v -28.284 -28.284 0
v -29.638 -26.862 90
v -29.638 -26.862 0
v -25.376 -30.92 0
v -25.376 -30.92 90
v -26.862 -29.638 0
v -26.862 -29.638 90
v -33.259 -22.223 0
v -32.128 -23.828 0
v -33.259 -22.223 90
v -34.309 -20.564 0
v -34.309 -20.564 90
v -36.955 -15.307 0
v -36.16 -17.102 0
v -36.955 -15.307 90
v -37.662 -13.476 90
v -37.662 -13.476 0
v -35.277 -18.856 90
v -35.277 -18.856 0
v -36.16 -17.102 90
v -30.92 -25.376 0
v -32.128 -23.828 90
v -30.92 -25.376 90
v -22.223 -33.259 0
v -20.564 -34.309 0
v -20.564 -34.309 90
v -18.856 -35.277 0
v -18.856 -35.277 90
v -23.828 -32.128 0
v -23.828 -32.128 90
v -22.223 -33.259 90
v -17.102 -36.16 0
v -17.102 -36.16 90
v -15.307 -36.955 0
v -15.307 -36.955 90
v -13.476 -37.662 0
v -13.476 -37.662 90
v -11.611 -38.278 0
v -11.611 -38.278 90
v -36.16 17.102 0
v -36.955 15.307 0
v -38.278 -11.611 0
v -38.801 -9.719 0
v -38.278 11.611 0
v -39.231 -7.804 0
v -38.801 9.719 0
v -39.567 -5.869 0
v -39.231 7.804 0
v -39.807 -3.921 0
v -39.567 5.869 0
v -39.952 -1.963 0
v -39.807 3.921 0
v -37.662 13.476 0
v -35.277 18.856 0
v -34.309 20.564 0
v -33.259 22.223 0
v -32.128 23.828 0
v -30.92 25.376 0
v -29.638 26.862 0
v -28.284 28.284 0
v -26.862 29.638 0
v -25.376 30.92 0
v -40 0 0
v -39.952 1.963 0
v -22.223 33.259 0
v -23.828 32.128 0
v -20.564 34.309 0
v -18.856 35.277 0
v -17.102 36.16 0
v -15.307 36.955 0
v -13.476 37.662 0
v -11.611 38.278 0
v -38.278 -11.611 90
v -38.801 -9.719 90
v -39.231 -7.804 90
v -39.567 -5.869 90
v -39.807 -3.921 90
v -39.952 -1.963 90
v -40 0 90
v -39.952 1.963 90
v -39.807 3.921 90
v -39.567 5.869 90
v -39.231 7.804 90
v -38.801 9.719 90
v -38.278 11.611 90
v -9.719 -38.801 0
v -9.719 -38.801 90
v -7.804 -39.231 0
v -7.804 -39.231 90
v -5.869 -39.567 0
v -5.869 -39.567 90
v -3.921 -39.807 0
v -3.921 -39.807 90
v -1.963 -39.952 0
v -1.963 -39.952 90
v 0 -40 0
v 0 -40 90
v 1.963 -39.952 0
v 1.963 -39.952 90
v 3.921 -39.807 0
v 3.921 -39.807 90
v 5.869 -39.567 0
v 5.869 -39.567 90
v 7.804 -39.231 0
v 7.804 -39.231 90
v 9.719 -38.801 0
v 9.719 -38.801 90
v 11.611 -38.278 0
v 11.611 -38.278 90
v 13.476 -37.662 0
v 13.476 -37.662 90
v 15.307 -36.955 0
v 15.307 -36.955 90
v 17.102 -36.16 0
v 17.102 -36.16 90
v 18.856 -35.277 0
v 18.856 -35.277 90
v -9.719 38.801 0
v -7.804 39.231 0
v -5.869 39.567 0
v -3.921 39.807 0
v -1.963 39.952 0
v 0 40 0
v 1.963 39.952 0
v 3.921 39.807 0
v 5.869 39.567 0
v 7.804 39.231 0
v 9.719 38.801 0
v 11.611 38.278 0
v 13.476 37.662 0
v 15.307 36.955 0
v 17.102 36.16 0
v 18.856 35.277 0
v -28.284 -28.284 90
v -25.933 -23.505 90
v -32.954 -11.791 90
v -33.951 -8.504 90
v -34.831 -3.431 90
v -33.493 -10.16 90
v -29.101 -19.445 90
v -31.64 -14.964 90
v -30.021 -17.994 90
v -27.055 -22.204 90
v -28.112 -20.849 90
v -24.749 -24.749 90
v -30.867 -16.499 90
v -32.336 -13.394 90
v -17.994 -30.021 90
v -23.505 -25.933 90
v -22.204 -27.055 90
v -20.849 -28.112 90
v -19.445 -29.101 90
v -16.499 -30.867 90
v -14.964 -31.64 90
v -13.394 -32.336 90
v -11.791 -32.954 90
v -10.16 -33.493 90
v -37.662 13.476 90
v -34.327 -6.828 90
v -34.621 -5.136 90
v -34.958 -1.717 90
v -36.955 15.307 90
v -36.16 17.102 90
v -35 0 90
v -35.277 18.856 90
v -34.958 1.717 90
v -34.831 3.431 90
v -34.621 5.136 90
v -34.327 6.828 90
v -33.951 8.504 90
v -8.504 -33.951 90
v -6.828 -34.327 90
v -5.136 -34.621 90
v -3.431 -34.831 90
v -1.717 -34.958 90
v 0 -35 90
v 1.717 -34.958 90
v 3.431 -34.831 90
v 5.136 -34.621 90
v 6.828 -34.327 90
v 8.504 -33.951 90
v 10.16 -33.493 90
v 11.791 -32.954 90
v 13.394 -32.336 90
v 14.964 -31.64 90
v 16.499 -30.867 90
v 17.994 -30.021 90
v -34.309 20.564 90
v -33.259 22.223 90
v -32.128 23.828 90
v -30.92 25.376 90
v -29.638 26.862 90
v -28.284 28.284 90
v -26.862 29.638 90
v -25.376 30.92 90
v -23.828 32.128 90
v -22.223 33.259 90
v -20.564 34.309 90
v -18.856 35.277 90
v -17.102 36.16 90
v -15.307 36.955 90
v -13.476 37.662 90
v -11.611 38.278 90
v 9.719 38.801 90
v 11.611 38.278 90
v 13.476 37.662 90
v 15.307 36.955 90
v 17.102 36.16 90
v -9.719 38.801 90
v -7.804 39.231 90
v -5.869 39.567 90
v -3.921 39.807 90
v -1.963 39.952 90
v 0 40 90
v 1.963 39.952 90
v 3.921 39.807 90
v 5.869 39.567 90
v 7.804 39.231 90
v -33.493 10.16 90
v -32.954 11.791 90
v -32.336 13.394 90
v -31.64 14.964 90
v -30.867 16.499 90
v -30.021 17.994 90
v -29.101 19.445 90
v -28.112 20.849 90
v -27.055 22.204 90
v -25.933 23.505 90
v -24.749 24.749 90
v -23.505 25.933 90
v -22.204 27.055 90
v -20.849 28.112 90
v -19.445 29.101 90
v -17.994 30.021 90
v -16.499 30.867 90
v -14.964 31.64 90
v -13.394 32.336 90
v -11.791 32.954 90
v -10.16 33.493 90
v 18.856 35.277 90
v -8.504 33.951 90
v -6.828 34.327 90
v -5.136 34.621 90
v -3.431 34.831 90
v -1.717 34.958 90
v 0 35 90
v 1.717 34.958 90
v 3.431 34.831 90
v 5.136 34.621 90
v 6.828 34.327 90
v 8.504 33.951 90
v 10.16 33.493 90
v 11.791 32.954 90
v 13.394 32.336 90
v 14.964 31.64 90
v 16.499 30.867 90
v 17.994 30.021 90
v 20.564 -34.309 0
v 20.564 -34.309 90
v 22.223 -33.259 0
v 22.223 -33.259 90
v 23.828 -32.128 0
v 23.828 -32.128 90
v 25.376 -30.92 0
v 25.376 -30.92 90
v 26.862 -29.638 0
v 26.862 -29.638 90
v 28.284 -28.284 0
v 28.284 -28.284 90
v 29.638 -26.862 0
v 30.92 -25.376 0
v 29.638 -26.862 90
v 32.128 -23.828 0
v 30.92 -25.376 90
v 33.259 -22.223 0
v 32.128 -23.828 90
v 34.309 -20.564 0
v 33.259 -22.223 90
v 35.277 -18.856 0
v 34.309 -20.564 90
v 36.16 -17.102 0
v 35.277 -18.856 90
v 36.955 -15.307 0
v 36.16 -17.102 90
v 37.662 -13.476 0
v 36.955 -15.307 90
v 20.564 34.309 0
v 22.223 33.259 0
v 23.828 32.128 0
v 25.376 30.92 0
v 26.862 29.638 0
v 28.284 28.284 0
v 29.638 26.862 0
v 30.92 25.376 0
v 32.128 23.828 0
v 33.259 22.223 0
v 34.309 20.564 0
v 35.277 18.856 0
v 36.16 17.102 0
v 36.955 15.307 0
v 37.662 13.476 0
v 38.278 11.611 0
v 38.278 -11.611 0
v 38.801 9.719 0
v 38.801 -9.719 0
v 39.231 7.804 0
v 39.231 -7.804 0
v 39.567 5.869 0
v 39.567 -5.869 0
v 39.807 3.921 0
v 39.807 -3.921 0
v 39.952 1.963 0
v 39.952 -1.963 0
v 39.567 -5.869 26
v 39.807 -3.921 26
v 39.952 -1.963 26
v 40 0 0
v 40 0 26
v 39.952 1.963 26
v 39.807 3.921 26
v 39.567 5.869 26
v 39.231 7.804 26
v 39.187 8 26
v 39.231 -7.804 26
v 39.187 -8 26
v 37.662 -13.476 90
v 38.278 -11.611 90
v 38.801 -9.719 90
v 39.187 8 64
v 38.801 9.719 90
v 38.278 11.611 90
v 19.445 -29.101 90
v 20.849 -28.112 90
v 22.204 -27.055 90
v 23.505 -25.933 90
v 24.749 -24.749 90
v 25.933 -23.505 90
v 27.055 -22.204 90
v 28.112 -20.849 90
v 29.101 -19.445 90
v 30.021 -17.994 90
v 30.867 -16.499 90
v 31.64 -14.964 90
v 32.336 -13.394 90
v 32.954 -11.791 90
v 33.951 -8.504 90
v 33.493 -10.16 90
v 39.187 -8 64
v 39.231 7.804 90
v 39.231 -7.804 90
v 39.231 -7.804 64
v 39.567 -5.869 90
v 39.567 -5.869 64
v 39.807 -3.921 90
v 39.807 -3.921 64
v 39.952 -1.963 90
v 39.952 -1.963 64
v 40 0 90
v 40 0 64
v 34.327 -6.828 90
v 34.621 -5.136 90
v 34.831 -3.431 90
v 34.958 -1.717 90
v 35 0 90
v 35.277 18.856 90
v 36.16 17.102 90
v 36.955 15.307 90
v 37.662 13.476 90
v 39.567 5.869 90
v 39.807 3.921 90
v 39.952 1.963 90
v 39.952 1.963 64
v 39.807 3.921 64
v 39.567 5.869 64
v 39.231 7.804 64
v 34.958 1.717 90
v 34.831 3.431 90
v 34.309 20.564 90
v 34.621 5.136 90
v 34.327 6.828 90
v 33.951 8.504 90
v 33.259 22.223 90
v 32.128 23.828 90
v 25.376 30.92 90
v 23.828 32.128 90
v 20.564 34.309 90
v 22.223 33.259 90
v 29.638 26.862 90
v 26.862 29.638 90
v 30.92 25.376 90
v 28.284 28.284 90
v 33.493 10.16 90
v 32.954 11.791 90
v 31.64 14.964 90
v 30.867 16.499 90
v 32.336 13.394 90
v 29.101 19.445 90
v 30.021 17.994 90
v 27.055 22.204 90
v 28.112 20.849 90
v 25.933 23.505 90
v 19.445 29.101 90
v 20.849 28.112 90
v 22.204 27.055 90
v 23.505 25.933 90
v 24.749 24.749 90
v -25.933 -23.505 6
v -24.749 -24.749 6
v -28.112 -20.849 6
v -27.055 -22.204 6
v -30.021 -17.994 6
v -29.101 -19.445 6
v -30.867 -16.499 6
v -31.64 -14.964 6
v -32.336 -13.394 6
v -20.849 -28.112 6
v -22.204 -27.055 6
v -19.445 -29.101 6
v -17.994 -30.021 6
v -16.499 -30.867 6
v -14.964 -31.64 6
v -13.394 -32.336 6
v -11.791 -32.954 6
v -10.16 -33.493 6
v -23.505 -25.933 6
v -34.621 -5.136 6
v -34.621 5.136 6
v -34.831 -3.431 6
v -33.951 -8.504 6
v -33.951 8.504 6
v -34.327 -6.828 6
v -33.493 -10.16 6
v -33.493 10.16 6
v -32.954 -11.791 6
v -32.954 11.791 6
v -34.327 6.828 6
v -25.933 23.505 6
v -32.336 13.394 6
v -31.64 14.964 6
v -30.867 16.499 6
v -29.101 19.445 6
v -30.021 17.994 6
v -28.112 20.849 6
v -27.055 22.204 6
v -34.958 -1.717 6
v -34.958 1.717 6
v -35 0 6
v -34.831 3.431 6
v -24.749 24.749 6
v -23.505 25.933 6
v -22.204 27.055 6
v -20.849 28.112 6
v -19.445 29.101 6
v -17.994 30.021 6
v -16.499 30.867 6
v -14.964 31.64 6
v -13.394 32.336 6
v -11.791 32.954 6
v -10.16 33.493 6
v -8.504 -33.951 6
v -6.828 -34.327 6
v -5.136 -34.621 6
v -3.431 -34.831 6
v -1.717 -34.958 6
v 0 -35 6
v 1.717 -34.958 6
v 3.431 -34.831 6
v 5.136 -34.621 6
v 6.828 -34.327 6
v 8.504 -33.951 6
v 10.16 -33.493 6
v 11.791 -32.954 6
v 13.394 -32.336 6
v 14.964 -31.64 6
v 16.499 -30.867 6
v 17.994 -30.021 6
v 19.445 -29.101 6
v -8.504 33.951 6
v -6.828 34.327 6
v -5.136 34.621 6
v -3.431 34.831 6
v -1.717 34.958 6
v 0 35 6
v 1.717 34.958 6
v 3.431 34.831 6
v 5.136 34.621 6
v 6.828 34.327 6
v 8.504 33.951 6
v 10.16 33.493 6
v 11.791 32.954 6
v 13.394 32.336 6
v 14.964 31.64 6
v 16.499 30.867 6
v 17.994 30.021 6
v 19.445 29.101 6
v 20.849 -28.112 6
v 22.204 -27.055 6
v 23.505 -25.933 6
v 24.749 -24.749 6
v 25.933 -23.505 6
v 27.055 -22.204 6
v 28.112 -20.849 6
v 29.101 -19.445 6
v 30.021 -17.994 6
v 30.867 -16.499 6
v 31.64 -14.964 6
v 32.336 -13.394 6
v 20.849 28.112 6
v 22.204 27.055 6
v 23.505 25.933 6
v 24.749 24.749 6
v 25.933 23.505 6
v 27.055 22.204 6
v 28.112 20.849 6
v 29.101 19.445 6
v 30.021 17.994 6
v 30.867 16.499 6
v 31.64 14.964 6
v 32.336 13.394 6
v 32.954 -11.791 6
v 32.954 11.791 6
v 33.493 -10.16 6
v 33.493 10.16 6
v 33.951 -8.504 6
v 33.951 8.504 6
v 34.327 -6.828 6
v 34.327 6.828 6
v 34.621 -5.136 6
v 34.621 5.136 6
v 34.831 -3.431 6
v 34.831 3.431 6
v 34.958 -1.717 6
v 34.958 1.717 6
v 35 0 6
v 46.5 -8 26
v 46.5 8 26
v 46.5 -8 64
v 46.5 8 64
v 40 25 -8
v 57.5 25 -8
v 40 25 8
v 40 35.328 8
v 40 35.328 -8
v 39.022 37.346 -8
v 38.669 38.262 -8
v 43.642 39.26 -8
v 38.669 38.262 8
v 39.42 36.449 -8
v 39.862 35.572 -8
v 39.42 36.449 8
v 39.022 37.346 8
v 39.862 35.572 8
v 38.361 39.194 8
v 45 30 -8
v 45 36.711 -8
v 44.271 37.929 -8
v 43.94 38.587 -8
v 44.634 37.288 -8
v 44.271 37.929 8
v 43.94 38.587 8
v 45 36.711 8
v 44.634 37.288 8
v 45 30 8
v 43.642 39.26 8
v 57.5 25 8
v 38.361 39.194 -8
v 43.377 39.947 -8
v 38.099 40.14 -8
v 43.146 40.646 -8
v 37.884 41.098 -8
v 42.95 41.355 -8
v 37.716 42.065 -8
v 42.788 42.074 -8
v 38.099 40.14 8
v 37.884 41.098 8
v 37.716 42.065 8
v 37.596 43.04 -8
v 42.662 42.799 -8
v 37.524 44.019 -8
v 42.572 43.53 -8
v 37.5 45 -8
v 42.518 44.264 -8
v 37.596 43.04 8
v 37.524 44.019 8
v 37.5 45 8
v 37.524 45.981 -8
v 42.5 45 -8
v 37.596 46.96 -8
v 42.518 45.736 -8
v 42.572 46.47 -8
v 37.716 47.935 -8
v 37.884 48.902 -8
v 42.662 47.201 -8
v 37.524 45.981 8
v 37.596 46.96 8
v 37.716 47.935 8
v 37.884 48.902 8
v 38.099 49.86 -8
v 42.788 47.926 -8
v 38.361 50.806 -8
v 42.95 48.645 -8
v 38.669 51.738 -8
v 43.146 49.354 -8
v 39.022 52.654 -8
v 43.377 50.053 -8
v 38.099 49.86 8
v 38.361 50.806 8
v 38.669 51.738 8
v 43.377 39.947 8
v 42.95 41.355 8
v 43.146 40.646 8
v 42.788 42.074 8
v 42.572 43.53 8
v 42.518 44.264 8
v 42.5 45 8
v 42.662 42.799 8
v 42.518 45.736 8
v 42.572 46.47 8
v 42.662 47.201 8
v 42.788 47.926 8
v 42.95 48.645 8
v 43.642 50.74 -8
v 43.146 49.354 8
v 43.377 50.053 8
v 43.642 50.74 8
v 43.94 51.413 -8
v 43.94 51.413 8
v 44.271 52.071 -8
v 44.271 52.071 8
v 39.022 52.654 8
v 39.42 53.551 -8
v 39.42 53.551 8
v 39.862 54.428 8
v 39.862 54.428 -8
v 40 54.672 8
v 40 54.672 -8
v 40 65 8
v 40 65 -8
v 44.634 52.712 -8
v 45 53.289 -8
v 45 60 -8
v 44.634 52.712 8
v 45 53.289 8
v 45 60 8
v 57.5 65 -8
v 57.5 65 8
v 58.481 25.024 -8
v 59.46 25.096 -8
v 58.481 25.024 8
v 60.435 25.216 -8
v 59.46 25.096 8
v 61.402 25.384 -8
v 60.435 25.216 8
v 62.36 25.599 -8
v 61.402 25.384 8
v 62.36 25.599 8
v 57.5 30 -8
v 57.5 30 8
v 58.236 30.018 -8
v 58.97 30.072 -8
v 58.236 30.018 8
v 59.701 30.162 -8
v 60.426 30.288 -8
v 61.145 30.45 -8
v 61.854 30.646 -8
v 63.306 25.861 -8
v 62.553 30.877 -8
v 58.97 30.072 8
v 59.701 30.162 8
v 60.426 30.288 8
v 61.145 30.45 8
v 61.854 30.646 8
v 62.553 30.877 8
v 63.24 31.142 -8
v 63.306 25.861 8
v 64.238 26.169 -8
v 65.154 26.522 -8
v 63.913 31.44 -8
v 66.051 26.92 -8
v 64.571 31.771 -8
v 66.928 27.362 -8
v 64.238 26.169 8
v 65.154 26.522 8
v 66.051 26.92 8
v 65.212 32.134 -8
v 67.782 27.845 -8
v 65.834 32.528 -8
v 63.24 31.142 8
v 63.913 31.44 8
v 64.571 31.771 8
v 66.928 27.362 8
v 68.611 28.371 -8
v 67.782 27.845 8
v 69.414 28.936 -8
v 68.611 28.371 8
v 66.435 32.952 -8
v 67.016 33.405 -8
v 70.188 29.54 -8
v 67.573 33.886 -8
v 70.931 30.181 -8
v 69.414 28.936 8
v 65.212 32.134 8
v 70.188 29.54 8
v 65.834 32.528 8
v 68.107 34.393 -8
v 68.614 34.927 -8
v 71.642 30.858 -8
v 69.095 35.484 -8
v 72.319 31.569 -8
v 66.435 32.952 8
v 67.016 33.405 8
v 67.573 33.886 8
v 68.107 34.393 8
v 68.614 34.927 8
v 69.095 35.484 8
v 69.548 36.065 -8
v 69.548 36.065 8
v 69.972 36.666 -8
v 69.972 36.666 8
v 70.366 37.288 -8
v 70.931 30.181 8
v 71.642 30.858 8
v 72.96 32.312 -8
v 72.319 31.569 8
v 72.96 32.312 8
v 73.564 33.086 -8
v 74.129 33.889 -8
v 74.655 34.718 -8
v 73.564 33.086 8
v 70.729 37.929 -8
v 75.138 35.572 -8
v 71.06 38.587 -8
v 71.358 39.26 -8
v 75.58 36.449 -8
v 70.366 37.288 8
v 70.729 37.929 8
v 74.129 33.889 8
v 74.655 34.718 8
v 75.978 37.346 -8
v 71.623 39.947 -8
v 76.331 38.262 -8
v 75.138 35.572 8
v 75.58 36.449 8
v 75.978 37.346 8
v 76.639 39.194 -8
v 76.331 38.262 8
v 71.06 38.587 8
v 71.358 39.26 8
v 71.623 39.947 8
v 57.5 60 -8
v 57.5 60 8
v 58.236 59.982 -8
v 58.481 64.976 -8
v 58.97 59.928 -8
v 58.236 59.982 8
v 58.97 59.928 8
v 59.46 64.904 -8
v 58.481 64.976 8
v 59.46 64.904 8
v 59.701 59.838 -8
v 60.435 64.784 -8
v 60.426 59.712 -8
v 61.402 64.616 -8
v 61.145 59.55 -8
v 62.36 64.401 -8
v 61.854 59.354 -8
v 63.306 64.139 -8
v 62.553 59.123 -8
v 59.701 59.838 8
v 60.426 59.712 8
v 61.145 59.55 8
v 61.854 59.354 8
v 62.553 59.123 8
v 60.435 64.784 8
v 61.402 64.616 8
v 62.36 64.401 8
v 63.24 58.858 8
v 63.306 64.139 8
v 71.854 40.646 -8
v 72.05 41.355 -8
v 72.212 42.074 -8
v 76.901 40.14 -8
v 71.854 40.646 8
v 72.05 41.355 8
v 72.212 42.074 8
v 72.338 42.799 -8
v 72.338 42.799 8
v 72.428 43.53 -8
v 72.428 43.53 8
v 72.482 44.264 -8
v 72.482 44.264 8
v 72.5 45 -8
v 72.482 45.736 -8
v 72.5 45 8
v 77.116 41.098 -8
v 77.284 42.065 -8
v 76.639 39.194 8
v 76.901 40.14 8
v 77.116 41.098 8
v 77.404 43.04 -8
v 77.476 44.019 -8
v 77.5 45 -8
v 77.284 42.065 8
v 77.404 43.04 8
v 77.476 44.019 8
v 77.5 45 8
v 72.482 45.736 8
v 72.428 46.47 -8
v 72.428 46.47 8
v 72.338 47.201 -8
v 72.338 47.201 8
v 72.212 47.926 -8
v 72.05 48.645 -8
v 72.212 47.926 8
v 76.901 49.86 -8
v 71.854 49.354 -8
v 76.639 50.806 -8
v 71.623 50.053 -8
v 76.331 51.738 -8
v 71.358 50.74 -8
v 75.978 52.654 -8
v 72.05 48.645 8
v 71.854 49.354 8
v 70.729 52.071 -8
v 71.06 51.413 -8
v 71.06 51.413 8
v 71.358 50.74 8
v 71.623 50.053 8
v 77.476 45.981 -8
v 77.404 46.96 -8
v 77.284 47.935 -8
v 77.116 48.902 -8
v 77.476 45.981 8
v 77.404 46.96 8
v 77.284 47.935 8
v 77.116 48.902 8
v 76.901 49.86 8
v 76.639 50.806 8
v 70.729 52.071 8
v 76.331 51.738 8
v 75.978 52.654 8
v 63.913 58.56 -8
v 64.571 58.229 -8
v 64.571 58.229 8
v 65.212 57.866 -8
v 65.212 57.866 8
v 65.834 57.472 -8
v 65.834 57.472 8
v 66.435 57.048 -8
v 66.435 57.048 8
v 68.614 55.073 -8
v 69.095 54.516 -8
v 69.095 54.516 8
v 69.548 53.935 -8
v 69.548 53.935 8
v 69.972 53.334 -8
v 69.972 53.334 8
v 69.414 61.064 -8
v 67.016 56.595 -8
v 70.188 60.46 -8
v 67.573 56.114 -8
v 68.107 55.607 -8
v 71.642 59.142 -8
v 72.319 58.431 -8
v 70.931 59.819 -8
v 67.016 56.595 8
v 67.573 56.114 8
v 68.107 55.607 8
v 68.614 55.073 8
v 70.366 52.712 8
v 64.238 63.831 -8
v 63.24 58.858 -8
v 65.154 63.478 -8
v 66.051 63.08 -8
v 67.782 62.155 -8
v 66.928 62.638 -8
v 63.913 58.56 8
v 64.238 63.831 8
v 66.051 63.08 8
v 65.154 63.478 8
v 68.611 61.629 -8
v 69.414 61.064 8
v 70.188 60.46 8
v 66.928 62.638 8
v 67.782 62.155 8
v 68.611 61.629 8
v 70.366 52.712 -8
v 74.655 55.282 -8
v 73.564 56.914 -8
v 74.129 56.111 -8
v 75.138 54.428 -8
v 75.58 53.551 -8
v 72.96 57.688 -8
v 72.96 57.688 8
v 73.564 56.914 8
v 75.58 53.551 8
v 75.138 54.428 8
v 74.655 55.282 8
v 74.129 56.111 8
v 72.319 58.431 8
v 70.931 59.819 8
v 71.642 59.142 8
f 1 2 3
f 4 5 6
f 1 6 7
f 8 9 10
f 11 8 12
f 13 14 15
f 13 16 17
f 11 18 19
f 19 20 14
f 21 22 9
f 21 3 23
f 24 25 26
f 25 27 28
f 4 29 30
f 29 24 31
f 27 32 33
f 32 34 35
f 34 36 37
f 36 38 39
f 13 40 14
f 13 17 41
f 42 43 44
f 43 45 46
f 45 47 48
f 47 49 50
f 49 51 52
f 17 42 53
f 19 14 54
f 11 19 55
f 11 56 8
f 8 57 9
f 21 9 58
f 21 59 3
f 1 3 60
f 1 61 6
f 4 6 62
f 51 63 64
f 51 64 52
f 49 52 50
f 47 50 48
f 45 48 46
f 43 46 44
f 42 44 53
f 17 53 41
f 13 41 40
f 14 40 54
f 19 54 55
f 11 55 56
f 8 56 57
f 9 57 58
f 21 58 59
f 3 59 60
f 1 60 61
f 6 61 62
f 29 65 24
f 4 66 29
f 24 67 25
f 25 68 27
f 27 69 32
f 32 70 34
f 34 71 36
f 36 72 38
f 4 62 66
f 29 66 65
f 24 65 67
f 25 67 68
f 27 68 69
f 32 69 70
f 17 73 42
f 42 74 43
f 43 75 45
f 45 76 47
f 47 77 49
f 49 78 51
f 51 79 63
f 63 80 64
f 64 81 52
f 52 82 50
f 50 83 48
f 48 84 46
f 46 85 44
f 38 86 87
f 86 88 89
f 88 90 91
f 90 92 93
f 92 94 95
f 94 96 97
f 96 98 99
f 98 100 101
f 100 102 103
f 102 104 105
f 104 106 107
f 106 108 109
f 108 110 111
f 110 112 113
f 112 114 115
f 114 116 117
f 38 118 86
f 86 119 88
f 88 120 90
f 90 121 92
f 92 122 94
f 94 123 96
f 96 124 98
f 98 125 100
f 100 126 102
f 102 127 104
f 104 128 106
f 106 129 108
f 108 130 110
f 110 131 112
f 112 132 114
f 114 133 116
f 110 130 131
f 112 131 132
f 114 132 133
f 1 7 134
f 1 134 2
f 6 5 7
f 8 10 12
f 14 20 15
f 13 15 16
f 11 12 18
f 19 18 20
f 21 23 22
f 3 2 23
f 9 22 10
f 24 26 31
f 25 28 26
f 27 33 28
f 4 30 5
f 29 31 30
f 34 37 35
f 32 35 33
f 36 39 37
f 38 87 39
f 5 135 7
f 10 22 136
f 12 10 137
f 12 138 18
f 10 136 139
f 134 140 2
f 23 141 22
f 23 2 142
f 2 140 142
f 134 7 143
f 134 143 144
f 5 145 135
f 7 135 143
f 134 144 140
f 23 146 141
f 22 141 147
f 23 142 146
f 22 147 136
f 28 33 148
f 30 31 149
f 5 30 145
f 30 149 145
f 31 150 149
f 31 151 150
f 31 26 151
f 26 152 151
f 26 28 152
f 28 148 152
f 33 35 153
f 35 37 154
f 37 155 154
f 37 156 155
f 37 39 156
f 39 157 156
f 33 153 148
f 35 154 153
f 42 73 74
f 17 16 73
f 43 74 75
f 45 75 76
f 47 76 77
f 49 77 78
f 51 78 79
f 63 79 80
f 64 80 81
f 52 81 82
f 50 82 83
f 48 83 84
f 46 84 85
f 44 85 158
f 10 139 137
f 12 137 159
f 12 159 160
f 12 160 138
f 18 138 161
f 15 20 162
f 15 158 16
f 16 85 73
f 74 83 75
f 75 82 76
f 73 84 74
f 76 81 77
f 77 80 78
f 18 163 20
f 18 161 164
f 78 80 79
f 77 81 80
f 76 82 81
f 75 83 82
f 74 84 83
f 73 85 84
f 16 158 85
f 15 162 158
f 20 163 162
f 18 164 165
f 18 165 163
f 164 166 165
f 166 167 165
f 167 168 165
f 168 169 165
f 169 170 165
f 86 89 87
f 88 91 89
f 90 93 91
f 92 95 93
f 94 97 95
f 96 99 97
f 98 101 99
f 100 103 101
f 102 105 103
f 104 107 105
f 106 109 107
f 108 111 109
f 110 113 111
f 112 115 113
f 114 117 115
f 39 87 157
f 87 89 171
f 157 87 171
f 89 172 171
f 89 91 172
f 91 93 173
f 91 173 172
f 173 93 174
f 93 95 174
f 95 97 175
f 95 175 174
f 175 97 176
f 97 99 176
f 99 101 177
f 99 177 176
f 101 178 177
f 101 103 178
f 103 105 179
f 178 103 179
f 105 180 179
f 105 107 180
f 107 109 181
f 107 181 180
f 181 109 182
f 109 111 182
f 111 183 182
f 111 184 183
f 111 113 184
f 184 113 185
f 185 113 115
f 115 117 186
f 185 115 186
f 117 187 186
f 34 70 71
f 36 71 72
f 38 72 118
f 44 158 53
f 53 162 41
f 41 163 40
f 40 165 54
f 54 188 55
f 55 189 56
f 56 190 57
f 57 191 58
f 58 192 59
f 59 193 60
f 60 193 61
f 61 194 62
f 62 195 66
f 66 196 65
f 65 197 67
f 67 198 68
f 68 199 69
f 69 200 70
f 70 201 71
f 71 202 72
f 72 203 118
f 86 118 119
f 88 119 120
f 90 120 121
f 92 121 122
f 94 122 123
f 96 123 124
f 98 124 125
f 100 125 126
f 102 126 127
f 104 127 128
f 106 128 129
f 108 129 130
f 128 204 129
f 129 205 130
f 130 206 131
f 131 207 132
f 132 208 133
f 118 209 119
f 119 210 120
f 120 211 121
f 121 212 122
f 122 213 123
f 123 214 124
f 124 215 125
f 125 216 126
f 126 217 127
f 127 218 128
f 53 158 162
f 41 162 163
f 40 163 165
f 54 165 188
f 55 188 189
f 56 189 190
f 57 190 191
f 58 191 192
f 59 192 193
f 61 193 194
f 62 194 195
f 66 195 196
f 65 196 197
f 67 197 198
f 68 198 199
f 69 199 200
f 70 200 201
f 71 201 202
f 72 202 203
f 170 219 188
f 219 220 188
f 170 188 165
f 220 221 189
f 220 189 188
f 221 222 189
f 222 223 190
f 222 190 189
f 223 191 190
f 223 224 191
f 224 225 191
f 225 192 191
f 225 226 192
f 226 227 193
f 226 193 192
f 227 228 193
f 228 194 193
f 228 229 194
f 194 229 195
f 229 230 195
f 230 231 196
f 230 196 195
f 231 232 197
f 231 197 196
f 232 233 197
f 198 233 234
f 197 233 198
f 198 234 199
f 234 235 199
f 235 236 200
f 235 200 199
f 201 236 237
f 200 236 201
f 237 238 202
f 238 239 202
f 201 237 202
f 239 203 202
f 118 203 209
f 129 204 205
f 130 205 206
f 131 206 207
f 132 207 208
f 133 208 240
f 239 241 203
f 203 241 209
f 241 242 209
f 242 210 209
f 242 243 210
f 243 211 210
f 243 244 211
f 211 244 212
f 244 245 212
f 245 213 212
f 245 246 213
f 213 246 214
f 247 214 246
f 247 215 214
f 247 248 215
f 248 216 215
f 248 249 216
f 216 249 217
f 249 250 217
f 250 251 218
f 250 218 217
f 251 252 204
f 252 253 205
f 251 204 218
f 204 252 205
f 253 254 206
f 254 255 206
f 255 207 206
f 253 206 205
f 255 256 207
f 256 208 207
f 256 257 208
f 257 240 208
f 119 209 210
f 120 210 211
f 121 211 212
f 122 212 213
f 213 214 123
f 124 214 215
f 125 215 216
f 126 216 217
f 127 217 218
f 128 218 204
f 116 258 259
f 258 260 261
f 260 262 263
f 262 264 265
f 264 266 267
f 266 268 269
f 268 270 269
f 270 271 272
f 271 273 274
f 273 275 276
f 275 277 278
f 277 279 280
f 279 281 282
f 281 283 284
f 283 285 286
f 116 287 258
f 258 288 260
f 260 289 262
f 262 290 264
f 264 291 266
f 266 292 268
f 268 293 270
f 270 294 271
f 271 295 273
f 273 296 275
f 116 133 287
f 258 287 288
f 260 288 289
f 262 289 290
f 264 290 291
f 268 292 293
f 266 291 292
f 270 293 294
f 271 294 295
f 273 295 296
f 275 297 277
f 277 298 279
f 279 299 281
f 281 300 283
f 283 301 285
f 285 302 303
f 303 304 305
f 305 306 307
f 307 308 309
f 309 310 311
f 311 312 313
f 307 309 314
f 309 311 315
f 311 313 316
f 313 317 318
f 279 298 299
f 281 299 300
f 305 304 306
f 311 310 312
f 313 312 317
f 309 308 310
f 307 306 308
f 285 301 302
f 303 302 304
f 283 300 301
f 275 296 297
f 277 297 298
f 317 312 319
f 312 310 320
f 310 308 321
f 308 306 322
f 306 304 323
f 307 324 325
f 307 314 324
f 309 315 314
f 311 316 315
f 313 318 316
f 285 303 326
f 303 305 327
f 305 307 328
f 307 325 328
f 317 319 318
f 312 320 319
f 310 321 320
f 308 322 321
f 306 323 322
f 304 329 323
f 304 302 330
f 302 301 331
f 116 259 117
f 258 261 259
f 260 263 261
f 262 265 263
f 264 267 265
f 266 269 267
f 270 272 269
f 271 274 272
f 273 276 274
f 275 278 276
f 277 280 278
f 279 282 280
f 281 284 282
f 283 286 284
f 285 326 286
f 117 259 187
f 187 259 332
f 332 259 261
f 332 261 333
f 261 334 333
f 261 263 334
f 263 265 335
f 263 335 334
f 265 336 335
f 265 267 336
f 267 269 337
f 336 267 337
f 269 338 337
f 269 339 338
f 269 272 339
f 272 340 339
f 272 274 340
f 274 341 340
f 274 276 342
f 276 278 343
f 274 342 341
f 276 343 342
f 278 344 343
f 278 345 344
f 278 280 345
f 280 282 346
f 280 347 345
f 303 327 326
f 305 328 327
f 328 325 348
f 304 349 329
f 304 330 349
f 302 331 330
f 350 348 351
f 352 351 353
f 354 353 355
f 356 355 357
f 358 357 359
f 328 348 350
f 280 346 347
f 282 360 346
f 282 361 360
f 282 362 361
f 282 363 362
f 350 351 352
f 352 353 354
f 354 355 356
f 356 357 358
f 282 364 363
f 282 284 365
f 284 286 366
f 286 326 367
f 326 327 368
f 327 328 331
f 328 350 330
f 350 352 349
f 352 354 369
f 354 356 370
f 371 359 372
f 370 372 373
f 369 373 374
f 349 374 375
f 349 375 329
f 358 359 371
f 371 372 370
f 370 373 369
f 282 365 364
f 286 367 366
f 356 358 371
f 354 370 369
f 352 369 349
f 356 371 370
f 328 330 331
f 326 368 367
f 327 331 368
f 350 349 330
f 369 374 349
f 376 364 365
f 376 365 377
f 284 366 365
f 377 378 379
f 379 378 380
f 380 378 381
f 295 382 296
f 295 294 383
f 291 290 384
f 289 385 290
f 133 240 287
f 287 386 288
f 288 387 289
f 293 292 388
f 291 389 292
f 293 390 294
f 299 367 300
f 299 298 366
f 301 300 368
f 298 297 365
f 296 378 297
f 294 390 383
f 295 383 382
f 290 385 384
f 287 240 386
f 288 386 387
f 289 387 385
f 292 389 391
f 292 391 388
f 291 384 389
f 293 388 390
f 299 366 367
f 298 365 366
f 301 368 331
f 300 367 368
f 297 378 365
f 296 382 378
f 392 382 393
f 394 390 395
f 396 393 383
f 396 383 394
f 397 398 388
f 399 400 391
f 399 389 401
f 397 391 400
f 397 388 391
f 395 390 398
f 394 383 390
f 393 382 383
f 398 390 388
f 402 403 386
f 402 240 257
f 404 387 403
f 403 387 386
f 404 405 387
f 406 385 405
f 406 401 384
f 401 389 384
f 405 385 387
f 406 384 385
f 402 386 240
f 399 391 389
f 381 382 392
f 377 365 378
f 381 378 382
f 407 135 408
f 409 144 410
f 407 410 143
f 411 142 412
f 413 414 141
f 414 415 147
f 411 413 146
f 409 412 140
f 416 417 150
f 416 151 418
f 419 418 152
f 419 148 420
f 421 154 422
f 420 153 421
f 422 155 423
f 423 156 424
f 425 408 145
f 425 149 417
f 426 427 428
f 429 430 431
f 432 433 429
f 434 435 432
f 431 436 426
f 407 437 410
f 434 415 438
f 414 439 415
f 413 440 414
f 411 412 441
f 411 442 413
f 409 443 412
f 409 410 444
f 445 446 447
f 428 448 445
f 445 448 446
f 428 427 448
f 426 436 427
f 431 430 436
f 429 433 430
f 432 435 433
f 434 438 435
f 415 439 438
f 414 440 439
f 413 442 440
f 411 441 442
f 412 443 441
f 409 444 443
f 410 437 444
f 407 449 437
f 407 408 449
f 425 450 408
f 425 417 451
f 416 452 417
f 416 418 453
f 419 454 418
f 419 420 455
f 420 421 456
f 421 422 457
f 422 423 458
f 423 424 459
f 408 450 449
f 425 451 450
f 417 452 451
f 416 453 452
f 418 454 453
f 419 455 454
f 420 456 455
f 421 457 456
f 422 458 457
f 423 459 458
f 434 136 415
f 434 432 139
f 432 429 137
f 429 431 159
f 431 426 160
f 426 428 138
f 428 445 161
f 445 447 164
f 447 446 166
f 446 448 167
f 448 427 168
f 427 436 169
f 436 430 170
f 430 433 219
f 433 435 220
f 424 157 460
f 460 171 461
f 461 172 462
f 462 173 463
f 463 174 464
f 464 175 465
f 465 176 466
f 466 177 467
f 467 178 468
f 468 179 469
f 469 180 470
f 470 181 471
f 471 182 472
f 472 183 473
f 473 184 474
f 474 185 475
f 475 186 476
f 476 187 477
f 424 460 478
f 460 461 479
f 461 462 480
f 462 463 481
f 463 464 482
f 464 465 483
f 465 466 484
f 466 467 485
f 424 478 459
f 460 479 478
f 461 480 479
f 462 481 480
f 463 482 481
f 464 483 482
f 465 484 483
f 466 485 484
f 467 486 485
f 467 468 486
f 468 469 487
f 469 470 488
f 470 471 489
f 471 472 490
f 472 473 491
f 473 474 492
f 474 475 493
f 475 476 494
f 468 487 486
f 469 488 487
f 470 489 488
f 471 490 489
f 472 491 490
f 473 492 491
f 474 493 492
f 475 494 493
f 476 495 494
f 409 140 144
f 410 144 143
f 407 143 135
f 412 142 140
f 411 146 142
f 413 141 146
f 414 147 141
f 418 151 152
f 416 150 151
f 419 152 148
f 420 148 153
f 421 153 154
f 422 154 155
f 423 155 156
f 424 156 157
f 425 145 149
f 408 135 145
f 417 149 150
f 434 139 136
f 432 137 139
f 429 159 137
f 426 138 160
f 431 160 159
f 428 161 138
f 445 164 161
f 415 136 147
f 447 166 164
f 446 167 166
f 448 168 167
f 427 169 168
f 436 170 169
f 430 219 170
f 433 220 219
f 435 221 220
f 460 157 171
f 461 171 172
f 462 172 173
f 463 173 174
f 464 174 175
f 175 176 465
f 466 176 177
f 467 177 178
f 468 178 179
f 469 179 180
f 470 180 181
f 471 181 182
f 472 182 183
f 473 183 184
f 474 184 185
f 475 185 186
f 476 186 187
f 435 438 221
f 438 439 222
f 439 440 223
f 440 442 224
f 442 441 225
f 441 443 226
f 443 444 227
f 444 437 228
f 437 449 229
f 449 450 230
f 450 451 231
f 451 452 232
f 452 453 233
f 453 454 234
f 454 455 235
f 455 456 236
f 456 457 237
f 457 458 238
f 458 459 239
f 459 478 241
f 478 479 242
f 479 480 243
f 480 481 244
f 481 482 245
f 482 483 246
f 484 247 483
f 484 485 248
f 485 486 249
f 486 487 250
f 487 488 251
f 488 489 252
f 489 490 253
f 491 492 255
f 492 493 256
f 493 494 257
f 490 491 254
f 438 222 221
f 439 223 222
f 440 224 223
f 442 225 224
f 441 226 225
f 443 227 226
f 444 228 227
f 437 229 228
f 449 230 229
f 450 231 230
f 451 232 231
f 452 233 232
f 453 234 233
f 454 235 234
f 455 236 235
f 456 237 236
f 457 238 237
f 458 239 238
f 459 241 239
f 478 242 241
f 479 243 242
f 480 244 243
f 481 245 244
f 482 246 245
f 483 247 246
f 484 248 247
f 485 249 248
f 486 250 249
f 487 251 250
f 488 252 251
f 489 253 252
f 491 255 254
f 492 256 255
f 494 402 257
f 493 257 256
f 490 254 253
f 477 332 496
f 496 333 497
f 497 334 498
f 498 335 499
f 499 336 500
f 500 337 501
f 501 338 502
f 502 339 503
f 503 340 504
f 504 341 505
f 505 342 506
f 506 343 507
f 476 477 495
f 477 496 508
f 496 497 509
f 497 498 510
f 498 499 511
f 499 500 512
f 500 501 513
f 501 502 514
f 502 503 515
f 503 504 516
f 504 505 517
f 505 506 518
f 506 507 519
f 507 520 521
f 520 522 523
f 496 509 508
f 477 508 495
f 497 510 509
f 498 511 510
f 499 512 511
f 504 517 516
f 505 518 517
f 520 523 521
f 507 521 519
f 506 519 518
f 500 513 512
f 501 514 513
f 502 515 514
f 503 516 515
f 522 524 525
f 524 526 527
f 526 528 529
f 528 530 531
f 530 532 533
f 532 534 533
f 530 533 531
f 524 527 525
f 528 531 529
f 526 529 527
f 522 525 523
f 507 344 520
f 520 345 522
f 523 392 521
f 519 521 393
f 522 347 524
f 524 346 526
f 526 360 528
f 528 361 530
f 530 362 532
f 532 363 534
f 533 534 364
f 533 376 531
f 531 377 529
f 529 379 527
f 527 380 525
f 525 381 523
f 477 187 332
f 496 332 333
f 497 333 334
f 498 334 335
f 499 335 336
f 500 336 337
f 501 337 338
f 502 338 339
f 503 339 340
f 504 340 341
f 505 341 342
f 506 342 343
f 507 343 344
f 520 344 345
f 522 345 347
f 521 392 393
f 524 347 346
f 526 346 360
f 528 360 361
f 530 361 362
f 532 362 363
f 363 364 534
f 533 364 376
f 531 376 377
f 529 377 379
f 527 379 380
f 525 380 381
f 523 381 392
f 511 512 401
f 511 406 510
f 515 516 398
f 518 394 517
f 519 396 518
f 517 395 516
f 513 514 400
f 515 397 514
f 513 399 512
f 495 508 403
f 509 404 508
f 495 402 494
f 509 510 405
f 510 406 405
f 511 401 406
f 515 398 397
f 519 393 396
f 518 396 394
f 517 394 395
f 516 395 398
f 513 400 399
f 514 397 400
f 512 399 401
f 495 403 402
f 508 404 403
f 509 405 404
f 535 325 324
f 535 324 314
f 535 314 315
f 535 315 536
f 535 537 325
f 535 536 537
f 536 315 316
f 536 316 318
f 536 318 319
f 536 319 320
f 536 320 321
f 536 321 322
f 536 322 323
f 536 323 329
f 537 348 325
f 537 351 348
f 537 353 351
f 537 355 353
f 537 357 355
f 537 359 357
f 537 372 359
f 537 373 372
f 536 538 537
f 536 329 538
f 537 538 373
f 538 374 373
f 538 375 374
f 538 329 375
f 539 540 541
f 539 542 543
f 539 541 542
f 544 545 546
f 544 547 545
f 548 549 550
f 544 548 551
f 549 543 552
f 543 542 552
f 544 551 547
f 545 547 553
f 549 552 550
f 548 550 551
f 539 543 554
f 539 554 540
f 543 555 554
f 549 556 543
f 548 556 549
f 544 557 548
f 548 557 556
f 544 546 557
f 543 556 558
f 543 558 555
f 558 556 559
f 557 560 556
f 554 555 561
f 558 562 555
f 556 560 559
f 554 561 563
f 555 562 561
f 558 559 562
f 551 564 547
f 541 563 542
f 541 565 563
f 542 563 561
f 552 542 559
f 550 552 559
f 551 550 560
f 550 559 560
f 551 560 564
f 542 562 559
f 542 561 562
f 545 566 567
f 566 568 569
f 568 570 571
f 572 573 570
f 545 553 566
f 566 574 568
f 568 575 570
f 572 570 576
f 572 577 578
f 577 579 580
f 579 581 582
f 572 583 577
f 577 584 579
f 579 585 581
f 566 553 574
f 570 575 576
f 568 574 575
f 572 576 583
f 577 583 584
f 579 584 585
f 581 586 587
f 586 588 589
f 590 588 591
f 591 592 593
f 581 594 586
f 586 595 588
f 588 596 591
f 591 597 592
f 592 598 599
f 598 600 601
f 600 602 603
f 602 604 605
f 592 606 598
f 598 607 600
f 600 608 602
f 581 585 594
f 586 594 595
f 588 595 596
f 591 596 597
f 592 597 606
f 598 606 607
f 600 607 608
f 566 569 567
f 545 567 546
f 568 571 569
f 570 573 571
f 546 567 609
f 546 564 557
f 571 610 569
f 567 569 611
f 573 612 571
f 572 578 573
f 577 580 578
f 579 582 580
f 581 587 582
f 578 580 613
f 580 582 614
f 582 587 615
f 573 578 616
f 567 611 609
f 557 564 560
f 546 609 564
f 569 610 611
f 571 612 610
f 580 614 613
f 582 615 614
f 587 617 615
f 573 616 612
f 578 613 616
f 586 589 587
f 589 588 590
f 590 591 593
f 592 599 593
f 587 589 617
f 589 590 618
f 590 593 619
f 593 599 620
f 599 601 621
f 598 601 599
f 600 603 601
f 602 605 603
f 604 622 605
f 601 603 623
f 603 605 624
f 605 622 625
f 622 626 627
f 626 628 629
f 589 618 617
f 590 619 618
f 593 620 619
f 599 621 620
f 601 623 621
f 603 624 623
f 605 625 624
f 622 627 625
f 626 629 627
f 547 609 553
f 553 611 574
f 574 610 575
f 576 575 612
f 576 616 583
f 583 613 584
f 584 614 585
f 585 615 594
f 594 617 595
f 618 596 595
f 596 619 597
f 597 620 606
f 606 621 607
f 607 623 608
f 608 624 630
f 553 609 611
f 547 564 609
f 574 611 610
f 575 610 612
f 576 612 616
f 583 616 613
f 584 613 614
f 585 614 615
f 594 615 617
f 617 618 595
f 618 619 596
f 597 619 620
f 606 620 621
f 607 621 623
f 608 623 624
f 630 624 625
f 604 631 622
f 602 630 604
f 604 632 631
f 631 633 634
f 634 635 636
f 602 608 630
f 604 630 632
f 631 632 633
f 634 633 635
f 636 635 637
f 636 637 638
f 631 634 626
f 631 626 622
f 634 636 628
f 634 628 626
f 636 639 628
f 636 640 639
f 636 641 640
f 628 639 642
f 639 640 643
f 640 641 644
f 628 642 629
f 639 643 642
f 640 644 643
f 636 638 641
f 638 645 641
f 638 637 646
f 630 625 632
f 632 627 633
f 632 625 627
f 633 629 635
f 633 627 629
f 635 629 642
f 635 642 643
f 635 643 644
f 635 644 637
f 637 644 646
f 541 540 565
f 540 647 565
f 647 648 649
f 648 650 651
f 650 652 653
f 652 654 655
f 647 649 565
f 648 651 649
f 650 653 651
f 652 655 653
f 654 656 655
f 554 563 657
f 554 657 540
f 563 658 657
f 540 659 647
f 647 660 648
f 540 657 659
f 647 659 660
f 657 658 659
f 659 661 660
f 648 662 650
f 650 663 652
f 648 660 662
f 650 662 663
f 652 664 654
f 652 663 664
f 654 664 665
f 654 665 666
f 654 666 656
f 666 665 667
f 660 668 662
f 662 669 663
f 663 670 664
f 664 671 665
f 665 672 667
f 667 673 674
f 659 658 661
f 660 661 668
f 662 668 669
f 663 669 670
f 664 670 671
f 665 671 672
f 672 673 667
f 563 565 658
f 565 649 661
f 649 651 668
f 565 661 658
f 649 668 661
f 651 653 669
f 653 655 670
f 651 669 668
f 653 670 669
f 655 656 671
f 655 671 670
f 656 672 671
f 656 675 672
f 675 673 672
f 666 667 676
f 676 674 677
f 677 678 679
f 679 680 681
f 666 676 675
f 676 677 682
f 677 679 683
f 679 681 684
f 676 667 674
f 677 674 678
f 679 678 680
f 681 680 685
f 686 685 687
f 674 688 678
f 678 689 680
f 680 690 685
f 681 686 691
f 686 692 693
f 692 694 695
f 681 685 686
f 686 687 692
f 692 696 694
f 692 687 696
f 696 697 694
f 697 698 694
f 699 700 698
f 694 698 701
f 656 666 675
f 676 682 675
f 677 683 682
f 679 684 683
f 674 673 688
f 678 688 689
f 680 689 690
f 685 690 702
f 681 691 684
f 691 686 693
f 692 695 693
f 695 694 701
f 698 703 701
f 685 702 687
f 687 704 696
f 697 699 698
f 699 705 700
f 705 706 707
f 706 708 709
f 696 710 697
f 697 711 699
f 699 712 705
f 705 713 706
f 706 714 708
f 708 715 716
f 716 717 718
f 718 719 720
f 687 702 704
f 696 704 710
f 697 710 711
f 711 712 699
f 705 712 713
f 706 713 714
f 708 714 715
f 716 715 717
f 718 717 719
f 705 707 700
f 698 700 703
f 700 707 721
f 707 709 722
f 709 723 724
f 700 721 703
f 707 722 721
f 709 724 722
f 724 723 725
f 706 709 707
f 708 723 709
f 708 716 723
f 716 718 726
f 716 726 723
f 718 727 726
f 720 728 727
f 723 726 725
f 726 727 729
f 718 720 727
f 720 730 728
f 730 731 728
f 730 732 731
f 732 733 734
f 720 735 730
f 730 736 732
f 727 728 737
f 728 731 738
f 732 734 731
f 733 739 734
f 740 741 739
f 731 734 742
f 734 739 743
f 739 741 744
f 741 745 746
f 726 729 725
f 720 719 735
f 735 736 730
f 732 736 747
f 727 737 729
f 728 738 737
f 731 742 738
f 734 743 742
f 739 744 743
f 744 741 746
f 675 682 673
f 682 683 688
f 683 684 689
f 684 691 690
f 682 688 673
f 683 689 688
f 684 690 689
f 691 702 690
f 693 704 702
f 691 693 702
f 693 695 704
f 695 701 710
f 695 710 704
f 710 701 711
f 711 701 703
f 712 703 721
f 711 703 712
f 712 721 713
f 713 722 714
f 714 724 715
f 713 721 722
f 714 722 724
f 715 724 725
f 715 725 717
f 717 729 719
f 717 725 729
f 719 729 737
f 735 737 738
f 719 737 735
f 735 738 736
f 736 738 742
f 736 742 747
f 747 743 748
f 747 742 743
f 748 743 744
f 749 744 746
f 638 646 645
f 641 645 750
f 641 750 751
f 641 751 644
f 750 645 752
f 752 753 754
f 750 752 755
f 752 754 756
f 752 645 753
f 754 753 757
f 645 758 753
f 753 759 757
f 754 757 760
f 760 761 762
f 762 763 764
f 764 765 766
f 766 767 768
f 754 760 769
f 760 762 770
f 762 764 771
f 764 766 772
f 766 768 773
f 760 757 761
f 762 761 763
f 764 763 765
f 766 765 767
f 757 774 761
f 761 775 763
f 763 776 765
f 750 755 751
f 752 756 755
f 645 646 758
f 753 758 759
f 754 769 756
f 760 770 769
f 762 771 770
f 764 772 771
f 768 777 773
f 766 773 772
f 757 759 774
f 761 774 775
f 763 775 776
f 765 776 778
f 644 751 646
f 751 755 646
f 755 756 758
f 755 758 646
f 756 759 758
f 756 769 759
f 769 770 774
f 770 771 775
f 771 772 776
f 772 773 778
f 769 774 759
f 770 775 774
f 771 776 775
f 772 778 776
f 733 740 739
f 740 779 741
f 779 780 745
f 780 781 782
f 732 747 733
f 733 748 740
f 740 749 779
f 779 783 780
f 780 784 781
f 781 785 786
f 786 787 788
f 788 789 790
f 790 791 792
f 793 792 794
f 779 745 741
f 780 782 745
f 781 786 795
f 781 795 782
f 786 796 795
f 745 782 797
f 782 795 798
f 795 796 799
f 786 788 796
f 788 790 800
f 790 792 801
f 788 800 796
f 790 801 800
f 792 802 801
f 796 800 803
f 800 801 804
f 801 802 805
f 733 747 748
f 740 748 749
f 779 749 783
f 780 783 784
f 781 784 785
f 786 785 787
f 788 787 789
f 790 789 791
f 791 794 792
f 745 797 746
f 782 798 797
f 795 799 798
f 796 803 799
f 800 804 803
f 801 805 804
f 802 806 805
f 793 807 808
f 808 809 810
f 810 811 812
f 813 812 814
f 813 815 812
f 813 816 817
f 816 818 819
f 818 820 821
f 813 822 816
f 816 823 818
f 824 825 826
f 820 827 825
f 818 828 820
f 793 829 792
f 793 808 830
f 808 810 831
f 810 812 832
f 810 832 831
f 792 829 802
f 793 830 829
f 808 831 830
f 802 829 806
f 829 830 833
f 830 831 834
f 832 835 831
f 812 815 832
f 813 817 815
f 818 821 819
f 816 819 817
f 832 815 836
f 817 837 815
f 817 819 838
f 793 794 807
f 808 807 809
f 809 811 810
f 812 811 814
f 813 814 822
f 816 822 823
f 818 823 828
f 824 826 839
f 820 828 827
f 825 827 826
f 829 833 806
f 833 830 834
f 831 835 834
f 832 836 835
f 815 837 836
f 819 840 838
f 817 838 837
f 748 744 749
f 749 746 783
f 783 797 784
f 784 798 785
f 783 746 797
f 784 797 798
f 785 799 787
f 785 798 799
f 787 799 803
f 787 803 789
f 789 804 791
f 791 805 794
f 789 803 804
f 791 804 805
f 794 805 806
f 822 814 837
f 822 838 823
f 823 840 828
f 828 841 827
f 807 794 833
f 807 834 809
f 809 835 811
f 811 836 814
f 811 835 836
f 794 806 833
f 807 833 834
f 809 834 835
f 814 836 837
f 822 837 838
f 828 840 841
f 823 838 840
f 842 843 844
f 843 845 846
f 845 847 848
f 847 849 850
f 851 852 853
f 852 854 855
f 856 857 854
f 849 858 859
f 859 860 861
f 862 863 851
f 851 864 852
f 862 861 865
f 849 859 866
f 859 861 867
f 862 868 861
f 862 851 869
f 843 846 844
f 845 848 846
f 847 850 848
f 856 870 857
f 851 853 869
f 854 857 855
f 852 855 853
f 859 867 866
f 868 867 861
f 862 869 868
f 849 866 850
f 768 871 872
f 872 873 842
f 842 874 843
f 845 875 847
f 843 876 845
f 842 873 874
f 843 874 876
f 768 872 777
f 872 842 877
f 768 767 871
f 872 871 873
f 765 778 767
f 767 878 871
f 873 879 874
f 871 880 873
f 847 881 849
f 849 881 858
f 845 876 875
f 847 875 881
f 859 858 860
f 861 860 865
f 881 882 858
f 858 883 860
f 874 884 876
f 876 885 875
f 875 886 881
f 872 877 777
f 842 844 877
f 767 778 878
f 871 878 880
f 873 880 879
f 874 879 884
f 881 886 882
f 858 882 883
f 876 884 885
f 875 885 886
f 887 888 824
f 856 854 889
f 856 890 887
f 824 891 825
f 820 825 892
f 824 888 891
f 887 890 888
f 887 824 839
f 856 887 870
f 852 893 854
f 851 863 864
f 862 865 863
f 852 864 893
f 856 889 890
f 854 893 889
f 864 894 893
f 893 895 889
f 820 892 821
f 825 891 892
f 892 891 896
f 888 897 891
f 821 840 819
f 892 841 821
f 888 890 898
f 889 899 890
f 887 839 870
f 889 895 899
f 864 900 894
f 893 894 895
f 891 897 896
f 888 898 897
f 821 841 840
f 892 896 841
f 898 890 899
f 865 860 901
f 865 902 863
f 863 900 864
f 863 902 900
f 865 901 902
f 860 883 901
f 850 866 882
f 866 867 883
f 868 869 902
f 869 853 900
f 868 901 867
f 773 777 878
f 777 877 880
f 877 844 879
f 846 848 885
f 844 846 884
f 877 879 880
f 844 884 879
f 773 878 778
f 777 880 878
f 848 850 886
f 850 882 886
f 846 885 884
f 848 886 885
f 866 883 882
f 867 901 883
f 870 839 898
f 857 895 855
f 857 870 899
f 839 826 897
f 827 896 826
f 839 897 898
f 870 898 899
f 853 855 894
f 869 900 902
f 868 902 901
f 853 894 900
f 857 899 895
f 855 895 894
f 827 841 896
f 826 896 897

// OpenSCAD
$fn = 128;

module mug_body() {
    difference() {
        cylinder(h = 90, d = 80);
        translate([0, 0, 6])
            cylinder(h = 90 - 6 + 0.2, d = 70);
    }
}

module handle_2d() {
    // D-shaped profile in the X-Z plane:
    // flat side on the body, semicircle on the outside.
    outer_w = 35;
    outer_h = 40;
    inner_w = 25;
    inner_h = 30;
    cx = 57.5;
    cz = 45;

    difference() {
        union() {
            translate([40, cz - outer_h / 2])
                square([outer_w / 2, outer_h], center = false);
            translate([cx, cz])
                circle(r = outer_h / 2);
        }
        union() {
            translate([45, cz - inner_h / 2])
                square([inner_w / 2, inner_h], center = false);
            translate([cx, cz])
                circle(r = inner_h / 2);
        }
    }
}

module handle() {
    // Extrude along Y to give the handle thickness.
    // Slight overlap into the mug body ensures a robust union.
    linear_extrude(height = 16, center = true, convexity = 10)
        handle_2d();
}

union() {
    mug_body();

    // Small bridge to guarantee a solid manifold connection on the +X side.
    translate([38.5, -8, 26])
        cube([8.0, 16, 38], center = false);

    handle();
}
